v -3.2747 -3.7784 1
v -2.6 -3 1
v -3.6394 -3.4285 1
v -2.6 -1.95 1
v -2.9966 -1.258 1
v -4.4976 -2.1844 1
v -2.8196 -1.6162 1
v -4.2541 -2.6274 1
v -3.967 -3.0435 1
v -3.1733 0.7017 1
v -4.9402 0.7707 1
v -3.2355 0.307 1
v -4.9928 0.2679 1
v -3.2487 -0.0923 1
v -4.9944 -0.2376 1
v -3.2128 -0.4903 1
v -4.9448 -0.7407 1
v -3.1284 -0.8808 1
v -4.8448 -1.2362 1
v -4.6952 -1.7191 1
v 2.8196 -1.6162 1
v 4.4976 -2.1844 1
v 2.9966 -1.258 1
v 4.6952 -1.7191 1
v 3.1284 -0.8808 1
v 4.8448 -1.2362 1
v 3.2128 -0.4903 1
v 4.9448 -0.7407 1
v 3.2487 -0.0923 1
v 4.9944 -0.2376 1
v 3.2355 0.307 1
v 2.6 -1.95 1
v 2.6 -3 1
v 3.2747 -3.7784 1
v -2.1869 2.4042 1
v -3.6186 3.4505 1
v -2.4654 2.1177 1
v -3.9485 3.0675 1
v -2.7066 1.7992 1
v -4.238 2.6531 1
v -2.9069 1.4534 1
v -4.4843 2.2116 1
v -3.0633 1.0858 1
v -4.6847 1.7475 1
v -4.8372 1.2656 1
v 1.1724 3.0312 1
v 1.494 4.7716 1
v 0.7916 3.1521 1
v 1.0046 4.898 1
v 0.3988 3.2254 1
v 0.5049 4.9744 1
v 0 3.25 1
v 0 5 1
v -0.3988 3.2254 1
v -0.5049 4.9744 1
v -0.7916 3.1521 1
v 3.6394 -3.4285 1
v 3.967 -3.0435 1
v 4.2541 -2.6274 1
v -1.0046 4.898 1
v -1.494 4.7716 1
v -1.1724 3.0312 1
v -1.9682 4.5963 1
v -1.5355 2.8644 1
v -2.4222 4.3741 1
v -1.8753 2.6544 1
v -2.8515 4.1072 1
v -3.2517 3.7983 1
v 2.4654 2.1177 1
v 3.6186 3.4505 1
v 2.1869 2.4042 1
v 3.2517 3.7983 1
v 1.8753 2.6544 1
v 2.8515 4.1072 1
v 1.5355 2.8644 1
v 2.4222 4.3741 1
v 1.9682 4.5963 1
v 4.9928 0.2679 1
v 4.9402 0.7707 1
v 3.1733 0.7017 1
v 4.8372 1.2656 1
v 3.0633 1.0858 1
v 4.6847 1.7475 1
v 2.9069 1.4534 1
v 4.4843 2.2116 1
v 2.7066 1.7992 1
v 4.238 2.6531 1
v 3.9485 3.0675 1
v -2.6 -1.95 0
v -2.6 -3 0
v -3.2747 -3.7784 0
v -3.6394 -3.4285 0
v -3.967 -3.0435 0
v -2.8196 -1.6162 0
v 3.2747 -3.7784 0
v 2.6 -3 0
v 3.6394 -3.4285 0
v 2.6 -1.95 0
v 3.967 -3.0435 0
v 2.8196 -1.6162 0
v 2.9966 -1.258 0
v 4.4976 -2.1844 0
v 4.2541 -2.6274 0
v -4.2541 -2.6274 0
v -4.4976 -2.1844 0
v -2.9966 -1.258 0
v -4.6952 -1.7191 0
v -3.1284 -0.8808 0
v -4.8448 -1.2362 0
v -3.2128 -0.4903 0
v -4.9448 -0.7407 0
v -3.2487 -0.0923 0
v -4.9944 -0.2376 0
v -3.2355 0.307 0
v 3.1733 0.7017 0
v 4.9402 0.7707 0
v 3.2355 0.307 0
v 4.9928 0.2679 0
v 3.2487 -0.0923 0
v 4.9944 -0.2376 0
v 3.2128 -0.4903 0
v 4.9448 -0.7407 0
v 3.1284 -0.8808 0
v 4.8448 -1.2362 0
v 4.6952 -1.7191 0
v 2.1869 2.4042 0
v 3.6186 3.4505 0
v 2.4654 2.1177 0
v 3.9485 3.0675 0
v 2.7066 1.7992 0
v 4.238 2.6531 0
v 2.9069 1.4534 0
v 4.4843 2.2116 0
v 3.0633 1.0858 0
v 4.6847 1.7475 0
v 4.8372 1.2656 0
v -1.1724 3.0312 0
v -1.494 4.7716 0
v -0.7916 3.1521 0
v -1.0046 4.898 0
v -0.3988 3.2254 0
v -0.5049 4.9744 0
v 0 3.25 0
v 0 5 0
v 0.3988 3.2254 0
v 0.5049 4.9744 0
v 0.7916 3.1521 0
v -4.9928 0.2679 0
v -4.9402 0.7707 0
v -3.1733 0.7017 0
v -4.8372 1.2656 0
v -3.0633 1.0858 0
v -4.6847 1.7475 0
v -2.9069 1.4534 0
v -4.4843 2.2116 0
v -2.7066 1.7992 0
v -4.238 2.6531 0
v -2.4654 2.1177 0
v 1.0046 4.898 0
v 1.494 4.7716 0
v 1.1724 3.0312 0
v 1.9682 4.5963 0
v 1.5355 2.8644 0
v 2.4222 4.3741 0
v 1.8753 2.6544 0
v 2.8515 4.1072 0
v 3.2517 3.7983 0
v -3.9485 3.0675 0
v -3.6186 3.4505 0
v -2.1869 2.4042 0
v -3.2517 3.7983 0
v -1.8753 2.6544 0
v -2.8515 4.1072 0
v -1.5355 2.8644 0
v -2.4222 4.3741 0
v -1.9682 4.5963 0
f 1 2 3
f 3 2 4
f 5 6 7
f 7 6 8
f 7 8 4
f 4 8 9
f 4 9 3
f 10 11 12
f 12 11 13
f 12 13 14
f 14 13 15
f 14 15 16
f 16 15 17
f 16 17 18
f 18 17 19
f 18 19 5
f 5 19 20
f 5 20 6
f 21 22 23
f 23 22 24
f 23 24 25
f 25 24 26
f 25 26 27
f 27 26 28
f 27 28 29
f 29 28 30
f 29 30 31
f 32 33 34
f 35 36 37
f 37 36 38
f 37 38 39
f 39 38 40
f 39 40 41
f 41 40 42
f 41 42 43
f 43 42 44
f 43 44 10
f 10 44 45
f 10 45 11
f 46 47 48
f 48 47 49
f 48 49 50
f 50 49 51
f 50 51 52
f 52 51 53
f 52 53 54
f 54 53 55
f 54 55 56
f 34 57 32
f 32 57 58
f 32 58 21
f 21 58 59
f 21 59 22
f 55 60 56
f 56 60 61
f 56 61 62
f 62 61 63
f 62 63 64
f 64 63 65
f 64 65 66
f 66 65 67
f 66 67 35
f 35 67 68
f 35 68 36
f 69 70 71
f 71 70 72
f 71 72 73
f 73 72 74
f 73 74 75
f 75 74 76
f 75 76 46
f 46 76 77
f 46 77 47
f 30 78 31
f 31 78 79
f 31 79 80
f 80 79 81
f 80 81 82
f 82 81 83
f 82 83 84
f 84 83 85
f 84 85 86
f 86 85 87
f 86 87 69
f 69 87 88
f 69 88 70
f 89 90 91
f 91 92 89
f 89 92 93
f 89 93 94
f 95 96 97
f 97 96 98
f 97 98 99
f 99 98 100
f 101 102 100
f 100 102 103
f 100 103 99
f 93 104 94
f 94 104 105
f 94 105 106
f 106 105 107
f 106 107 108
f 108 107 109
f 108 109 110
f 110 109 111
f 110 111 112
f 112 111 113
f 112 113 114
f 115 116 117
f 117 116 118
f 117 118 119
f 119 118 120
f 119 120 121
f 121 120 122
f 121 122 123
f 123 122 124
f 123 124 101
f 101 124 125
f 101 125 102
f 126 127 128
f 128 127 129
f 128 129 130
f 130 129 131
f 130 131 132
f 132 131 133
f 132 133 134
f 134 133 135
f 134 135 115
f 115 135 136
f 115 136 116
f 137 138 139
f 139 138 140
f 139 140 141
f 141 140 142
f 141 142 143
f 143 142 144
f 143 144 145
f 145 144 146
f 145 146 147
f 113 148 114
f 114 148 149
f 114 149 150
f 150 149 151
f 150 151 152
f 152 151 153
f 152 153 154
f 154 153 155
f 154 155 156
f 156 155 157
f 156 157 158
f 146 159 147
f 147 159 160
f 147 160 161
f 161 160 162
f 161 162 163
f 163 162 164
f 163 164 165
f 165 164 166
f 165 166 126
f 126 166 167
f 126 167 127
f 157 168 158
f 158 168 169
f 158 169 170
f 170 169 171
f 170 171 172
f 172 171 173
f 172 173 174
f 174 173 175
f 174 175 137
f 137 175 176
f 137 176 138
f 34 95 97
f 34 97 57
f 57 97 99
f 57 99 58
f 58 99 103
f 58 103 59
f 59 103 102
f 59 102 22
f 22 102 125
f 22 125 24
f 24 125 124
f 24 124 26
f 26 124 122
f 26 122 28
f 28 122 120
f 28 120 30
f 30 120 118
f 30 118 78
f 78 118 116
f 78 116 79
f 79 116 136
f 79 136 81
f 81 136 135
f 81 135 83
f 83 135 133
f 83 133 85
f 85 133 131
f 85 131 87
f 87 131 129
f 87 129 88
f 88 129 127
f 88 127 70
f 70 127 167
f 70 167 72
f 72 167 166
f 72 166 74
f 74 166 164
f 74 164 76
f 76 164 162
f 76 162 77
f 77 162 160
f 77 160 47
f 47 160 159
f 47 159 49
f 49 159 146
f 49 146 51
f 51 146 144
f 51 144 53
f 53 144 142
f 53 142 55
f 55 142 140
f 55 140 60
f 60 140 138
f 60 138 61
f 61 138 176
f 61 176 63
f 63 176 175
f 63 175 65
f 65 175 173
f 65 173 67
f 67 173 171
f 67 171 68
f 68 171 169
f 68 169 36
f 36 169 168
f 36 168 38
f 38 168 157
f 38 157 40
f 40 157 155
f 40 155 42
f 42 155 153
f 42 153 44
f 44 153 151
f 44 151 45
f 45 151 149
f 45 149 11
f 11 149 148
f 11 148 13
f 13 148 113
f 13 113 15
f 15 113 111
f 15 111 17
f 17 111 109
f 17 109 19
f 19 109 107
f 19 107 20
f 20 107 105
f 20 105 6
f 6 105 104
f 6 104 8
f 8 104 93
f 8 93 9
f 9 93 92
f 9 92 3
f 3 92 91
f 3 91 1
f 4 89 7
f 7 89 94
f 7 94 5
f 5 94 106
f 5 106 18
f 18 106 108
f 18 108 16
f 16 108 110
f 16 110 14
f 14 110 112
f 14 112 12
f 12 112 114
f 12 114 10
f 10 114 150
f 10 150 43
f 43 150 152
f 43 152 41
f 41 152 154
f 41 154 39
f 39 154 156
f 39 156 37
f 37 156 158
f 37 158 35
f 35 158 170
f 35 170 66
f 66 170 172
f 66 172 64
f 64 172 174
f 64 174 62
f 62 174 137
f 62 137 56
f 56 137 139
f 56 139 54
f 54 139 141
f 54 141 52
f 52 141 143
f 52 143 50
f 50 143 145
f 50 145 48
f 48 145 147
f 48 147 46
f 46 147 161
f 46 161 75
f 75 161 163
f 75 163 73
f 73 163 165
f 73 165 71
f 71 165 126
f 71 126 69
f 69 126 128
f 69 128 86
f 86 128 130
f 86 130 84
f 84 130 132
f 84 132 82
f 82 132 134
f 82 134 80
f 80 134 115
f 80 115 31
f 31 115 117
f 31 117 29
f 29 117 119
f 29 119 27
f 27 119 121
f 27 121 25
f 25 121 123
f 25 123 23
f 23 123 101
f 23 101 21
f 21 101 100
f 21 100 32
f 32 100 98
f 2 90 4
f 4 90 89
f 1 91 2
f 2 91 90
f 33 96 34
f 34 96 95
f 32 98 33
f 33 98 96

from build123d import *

# Parameters (mm, degrees)
CROQUIS1_R              = 5
CROQUIS1_R_2            = 3.25
SALIENTE_EXTRUIR1_DEPTH = 1
CORTAR_EXTRUIR1_DEPTH   = 10


with BuildPart() as part:
    # Croquis1 → Saliente-Extruir1 (new body)
    with BuildSketch(Plane.XY):
        Circle(CROQUIS1_R)
        Circle(CROQUIS1_R_2, mode=Mode.SUBTRACT)
    extrude(amount=SALIENTE_EXTRUIR1_DEPTH)

    # Croquis2 → Cortar-Extruir1 (cut)
    with BuildSketch(Plane.XY.offset(1)):
        Polygon((-2.6, -3), (-3.274652692, -3.778445414), (-3.274652692, -6), (-2.6, -6), (2.6, -6), (3.274652692, -6), (3.274652692, -3.778445414), (2.6, -3), (2.6, 0), (-2.6, 0), align=None)
    extrude(amount=-CORTAR_EXTRUIR1_DEPTH, mode=Mode.SUBTRACT)


solid = part.part
